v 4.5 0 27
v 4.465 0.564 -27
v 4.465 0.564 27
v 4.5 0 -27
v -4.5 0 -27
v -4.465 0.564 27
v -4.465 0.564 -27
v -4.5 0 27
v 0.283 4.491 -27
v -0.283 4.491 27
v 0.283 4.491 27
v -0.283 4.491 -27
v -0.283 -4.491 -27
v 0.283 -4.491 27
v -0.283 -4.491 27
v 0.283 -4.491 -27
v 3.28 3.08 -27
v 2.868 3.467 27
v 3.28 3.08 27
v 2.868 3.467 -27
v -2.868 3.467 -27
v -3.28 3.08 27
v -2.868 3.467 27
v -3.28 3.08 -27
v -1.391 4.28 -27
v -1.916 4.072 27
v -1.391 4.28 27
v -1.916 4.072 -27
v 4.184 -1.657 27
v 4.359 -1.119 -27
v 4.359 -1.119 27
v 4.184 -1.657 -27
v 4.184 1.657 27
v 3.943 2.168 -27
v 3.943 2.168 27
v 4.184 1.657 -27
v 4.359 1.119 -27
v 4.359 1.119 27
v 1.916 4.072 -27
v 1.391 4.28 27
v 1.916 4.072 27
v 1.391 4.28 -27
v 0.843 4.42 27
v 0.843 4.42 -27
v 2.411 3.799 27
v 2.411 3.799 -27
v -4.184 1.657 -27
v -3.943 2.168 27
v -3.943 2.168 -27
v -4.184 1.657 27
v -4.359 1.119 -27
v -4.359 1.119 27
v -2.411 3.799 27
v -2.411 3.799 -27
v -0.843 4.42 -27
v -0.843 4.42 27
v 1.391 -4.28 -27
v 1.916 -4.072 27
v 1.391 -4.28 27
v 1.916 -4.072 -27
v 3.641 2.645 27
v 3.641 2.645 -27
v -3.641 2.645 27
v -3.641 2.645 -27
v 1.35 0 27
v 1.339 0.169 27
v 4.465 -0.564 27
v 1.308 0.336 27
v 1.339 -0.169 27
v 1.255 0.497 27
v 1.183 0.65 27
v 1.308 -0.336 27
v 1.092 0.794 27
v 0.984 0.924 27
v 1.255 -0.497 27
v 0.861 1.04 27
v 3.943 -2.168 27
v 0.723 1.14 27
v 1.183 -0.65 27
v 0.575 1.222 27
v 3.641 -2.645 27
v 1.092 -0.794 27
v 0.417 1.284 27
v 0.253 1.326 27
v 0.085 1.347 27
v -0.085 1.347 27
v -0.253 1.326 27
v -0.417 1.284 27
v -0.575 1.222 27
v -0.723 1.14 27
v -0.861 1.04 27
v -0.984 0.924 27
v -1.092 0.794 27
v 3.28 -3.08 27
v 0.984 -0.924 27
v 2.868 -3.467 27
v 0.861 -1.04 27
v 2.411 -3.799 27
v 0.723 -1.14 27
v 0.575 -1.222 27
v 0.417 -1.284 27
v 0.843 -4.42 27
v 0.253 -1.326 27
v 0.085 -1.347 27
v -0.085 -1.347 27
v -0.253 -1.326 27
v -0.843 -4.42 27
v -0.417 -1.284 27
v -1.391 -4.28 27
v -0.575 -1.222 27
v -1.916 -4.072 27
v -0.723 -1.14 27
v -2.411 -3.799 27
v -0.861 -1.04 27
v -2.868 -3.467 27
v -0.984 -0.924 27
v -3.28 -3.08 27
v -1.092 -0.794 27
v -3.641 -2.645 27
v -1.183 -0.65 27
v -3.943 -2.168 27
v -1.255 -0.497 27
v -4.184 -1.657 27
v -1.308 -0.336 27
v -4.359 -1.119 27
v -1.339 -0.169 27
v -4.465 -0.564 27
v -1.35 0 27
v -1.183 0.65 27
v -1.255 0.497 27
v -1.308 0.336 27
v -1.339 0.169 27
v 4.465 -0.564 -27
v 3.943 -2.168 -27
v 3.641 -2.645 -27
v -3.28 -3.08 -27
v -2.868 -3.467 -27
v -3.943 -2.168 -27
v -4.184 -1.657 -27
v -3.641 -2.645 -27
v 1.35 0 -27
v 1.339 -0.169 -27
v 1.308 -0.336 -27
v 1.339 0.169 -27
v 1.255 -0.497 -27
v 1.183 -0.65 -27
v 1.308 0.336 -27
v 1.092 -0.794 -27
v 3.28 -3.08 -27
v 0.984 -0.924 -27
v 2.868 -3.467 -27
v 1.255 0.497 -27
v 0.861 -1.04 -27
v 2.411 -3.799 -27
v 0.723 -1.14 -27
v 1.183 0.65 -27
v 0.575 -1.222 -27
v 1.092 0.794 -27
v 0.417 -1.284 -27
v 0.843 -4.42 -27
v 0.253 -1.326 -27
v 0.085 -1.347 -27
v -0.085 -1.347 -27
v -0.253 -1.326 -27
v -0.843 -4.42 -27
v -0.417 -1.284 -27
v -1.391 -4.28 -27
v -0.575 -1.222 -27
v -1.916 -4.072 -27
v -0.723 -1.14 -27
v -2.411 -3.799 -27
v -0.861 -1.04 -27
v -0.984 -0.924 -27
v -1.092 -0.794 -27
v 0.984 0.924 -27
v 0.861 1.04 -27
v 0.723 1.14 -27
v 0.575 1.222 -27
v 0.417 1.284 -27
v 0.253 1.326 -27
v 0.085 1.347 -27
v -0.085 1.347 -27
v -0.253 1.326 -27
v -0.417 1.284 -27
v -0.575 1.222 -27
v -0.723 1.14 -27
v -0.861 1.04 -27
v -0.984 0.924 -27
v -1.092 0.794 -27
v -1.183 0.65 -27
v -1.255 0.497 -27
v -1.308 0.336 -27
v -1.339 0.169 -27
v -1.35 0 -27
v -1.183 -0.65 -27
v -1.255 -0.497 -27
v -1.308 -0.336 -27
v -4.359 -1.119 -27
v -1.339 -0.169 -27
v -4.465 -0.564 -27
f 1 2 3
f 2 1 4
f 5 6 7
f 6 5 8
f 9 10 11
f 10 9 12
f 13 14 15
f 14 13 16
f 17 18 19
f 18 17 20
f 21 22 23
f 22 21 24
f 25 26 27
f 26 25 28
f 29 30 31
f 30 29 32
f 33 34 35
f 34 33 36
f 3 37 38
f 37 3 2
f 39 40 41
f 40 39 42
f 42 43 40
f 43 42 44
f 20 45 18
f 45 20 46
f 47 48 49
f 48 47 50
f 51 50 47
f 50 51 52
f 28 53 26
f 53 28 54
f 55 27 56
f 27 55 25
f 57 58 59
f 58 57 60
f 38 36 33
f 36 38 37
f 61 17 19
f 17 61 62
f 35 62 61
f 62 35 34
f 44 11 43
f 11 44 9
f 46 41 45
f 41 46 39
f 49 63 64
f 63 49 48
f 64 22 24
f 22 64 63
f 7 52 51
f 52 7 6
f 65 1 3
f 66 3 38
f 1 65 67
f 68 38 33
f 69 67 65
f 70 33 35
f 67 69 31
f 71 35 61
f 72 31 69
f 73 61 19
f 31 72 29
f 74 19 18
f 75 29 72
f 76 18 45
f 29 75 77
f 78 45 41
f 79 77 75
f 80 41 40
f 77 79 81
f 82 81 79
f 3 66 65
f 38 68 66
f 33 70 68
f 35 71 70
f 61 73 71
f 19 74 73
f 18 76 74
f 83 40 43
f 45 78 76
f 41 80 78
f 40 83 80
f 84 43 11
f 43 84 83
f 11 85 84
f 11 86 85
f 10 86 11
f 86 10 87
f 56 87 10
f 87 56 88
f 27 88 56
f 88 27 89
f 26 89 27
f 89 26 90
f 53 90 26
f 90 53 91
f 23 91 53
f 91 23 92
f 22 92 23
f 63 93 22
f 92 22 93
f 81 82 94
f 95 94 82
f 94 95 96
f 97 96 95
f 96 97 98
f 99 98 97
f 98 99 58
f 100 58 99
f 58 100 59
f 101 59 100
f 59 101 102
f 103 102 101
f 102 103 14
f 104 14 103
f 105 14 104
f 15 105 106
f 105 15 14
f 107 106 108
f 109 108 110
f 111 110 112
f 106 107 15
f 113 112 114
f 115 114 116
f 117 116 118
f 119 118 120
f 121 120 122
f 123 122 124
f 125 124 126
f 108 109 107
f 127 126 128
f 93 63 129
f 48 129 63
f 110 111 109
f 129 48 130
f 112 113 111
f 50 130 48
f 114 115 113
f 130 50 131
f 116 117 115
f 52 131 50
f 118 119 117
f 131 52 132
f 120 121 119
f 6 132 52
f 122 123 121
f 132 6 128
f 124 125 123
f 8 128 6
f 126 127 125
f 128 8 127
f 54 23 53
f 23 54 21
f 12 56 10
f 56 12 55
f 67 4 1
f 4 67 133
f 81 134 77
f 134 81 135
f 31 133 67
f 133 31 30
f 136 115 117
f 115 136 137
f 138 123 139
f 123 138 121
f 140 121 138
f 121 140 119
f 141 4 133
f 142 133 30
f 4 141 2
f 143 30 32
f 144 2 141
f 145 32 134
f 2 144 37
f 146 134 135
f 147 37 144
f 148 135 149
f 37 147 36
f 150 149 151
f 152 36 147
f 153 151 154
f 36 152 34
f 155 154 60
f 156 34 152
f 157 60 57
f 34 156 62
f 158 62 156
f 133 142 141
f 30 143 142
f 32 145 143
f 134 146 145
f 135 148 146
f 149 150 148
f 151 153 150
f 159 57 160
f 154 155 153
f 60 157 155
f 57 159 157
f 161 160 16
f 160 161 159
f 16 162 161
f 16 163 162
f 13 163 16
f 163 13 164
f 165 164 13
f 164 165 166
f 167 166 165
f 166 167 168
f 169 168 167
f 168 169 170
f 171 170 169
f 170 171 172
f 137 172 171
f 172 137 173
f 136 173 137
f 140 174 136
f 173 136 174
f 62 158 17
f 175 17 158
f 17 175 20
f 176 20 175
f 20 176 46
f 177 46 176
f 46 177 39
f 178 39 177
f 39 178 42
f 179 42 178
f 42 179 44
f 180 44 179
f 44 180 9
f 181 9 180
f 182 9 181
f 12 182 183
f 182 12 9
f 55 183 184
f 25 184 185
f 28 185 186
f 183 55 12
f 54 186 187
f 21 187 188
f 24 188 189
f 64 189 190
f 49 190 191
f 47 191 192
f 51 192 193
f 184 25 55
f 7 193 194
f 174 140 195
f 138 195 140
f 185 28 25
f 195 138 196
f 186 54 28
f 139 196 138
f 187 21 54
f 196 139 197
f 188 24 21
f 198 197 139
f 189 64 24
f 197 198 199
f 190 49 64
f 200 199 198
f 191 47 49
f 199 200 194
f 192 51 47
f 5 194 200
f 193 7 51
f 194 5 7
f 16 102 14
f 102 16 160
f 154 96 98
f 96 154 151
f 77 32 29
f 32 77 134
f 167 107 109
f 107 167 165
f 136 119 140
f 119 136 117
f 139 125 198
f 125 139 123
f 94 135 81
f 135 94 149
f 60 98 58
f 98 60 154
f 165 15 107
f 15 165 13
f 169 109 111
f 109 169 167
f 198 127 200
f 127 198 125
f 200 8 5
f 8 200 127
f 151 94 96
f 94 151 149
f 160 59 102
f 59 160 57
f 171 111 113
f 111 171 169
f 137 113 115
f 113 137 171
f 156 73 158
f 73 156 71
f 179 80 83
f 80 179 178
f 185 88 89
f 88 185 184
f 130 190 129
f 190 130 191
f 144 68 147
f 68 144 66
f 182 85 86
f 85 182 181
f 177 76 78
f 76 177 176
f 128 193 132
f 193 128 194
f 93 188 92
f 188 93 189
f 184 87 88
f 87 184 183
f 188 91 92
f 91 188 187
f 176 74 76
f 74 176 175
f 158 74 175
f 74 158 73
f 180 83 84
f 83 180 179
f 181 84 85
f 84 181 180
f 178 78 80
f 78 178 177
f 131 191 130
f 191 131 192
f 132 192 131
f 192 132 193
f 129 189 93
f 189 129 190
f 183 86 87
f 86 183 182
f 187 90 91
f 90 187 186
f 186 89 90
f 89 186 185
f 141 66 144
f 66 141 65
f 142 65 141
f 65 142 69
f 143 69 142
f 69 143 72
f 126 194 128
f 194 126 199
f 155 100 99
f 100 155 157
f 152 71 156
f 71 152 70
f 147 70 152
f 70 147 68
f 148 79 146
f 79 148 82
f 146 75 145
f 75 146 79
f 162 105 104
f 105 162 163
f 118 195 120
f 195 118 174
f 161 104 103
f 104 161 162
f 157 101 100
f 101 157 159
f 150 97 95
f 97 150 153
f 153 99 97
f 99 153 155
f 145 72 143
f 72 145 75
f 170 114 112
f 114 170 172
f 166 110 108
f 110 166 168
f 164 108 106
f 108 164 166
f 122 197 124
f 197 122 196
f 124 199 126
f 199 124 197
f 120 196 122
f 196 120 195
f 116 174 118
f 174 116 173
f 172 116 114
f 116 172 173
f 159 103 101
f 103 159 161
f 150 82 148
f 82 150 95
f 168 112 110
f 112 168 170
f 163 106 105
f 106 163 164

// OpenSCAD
$fn = 50;


difference() {
	union() {
		translate(v = [0, 0, -27.0000000000]) {
			cylinder(h = 54, r = 4.5000000000);
		}
	}
	union() {
		translate(v = [0, 0, -100.0000000000]) {
			cylinder(h = 200, r = 1.3500000000);
		}
	}
}
